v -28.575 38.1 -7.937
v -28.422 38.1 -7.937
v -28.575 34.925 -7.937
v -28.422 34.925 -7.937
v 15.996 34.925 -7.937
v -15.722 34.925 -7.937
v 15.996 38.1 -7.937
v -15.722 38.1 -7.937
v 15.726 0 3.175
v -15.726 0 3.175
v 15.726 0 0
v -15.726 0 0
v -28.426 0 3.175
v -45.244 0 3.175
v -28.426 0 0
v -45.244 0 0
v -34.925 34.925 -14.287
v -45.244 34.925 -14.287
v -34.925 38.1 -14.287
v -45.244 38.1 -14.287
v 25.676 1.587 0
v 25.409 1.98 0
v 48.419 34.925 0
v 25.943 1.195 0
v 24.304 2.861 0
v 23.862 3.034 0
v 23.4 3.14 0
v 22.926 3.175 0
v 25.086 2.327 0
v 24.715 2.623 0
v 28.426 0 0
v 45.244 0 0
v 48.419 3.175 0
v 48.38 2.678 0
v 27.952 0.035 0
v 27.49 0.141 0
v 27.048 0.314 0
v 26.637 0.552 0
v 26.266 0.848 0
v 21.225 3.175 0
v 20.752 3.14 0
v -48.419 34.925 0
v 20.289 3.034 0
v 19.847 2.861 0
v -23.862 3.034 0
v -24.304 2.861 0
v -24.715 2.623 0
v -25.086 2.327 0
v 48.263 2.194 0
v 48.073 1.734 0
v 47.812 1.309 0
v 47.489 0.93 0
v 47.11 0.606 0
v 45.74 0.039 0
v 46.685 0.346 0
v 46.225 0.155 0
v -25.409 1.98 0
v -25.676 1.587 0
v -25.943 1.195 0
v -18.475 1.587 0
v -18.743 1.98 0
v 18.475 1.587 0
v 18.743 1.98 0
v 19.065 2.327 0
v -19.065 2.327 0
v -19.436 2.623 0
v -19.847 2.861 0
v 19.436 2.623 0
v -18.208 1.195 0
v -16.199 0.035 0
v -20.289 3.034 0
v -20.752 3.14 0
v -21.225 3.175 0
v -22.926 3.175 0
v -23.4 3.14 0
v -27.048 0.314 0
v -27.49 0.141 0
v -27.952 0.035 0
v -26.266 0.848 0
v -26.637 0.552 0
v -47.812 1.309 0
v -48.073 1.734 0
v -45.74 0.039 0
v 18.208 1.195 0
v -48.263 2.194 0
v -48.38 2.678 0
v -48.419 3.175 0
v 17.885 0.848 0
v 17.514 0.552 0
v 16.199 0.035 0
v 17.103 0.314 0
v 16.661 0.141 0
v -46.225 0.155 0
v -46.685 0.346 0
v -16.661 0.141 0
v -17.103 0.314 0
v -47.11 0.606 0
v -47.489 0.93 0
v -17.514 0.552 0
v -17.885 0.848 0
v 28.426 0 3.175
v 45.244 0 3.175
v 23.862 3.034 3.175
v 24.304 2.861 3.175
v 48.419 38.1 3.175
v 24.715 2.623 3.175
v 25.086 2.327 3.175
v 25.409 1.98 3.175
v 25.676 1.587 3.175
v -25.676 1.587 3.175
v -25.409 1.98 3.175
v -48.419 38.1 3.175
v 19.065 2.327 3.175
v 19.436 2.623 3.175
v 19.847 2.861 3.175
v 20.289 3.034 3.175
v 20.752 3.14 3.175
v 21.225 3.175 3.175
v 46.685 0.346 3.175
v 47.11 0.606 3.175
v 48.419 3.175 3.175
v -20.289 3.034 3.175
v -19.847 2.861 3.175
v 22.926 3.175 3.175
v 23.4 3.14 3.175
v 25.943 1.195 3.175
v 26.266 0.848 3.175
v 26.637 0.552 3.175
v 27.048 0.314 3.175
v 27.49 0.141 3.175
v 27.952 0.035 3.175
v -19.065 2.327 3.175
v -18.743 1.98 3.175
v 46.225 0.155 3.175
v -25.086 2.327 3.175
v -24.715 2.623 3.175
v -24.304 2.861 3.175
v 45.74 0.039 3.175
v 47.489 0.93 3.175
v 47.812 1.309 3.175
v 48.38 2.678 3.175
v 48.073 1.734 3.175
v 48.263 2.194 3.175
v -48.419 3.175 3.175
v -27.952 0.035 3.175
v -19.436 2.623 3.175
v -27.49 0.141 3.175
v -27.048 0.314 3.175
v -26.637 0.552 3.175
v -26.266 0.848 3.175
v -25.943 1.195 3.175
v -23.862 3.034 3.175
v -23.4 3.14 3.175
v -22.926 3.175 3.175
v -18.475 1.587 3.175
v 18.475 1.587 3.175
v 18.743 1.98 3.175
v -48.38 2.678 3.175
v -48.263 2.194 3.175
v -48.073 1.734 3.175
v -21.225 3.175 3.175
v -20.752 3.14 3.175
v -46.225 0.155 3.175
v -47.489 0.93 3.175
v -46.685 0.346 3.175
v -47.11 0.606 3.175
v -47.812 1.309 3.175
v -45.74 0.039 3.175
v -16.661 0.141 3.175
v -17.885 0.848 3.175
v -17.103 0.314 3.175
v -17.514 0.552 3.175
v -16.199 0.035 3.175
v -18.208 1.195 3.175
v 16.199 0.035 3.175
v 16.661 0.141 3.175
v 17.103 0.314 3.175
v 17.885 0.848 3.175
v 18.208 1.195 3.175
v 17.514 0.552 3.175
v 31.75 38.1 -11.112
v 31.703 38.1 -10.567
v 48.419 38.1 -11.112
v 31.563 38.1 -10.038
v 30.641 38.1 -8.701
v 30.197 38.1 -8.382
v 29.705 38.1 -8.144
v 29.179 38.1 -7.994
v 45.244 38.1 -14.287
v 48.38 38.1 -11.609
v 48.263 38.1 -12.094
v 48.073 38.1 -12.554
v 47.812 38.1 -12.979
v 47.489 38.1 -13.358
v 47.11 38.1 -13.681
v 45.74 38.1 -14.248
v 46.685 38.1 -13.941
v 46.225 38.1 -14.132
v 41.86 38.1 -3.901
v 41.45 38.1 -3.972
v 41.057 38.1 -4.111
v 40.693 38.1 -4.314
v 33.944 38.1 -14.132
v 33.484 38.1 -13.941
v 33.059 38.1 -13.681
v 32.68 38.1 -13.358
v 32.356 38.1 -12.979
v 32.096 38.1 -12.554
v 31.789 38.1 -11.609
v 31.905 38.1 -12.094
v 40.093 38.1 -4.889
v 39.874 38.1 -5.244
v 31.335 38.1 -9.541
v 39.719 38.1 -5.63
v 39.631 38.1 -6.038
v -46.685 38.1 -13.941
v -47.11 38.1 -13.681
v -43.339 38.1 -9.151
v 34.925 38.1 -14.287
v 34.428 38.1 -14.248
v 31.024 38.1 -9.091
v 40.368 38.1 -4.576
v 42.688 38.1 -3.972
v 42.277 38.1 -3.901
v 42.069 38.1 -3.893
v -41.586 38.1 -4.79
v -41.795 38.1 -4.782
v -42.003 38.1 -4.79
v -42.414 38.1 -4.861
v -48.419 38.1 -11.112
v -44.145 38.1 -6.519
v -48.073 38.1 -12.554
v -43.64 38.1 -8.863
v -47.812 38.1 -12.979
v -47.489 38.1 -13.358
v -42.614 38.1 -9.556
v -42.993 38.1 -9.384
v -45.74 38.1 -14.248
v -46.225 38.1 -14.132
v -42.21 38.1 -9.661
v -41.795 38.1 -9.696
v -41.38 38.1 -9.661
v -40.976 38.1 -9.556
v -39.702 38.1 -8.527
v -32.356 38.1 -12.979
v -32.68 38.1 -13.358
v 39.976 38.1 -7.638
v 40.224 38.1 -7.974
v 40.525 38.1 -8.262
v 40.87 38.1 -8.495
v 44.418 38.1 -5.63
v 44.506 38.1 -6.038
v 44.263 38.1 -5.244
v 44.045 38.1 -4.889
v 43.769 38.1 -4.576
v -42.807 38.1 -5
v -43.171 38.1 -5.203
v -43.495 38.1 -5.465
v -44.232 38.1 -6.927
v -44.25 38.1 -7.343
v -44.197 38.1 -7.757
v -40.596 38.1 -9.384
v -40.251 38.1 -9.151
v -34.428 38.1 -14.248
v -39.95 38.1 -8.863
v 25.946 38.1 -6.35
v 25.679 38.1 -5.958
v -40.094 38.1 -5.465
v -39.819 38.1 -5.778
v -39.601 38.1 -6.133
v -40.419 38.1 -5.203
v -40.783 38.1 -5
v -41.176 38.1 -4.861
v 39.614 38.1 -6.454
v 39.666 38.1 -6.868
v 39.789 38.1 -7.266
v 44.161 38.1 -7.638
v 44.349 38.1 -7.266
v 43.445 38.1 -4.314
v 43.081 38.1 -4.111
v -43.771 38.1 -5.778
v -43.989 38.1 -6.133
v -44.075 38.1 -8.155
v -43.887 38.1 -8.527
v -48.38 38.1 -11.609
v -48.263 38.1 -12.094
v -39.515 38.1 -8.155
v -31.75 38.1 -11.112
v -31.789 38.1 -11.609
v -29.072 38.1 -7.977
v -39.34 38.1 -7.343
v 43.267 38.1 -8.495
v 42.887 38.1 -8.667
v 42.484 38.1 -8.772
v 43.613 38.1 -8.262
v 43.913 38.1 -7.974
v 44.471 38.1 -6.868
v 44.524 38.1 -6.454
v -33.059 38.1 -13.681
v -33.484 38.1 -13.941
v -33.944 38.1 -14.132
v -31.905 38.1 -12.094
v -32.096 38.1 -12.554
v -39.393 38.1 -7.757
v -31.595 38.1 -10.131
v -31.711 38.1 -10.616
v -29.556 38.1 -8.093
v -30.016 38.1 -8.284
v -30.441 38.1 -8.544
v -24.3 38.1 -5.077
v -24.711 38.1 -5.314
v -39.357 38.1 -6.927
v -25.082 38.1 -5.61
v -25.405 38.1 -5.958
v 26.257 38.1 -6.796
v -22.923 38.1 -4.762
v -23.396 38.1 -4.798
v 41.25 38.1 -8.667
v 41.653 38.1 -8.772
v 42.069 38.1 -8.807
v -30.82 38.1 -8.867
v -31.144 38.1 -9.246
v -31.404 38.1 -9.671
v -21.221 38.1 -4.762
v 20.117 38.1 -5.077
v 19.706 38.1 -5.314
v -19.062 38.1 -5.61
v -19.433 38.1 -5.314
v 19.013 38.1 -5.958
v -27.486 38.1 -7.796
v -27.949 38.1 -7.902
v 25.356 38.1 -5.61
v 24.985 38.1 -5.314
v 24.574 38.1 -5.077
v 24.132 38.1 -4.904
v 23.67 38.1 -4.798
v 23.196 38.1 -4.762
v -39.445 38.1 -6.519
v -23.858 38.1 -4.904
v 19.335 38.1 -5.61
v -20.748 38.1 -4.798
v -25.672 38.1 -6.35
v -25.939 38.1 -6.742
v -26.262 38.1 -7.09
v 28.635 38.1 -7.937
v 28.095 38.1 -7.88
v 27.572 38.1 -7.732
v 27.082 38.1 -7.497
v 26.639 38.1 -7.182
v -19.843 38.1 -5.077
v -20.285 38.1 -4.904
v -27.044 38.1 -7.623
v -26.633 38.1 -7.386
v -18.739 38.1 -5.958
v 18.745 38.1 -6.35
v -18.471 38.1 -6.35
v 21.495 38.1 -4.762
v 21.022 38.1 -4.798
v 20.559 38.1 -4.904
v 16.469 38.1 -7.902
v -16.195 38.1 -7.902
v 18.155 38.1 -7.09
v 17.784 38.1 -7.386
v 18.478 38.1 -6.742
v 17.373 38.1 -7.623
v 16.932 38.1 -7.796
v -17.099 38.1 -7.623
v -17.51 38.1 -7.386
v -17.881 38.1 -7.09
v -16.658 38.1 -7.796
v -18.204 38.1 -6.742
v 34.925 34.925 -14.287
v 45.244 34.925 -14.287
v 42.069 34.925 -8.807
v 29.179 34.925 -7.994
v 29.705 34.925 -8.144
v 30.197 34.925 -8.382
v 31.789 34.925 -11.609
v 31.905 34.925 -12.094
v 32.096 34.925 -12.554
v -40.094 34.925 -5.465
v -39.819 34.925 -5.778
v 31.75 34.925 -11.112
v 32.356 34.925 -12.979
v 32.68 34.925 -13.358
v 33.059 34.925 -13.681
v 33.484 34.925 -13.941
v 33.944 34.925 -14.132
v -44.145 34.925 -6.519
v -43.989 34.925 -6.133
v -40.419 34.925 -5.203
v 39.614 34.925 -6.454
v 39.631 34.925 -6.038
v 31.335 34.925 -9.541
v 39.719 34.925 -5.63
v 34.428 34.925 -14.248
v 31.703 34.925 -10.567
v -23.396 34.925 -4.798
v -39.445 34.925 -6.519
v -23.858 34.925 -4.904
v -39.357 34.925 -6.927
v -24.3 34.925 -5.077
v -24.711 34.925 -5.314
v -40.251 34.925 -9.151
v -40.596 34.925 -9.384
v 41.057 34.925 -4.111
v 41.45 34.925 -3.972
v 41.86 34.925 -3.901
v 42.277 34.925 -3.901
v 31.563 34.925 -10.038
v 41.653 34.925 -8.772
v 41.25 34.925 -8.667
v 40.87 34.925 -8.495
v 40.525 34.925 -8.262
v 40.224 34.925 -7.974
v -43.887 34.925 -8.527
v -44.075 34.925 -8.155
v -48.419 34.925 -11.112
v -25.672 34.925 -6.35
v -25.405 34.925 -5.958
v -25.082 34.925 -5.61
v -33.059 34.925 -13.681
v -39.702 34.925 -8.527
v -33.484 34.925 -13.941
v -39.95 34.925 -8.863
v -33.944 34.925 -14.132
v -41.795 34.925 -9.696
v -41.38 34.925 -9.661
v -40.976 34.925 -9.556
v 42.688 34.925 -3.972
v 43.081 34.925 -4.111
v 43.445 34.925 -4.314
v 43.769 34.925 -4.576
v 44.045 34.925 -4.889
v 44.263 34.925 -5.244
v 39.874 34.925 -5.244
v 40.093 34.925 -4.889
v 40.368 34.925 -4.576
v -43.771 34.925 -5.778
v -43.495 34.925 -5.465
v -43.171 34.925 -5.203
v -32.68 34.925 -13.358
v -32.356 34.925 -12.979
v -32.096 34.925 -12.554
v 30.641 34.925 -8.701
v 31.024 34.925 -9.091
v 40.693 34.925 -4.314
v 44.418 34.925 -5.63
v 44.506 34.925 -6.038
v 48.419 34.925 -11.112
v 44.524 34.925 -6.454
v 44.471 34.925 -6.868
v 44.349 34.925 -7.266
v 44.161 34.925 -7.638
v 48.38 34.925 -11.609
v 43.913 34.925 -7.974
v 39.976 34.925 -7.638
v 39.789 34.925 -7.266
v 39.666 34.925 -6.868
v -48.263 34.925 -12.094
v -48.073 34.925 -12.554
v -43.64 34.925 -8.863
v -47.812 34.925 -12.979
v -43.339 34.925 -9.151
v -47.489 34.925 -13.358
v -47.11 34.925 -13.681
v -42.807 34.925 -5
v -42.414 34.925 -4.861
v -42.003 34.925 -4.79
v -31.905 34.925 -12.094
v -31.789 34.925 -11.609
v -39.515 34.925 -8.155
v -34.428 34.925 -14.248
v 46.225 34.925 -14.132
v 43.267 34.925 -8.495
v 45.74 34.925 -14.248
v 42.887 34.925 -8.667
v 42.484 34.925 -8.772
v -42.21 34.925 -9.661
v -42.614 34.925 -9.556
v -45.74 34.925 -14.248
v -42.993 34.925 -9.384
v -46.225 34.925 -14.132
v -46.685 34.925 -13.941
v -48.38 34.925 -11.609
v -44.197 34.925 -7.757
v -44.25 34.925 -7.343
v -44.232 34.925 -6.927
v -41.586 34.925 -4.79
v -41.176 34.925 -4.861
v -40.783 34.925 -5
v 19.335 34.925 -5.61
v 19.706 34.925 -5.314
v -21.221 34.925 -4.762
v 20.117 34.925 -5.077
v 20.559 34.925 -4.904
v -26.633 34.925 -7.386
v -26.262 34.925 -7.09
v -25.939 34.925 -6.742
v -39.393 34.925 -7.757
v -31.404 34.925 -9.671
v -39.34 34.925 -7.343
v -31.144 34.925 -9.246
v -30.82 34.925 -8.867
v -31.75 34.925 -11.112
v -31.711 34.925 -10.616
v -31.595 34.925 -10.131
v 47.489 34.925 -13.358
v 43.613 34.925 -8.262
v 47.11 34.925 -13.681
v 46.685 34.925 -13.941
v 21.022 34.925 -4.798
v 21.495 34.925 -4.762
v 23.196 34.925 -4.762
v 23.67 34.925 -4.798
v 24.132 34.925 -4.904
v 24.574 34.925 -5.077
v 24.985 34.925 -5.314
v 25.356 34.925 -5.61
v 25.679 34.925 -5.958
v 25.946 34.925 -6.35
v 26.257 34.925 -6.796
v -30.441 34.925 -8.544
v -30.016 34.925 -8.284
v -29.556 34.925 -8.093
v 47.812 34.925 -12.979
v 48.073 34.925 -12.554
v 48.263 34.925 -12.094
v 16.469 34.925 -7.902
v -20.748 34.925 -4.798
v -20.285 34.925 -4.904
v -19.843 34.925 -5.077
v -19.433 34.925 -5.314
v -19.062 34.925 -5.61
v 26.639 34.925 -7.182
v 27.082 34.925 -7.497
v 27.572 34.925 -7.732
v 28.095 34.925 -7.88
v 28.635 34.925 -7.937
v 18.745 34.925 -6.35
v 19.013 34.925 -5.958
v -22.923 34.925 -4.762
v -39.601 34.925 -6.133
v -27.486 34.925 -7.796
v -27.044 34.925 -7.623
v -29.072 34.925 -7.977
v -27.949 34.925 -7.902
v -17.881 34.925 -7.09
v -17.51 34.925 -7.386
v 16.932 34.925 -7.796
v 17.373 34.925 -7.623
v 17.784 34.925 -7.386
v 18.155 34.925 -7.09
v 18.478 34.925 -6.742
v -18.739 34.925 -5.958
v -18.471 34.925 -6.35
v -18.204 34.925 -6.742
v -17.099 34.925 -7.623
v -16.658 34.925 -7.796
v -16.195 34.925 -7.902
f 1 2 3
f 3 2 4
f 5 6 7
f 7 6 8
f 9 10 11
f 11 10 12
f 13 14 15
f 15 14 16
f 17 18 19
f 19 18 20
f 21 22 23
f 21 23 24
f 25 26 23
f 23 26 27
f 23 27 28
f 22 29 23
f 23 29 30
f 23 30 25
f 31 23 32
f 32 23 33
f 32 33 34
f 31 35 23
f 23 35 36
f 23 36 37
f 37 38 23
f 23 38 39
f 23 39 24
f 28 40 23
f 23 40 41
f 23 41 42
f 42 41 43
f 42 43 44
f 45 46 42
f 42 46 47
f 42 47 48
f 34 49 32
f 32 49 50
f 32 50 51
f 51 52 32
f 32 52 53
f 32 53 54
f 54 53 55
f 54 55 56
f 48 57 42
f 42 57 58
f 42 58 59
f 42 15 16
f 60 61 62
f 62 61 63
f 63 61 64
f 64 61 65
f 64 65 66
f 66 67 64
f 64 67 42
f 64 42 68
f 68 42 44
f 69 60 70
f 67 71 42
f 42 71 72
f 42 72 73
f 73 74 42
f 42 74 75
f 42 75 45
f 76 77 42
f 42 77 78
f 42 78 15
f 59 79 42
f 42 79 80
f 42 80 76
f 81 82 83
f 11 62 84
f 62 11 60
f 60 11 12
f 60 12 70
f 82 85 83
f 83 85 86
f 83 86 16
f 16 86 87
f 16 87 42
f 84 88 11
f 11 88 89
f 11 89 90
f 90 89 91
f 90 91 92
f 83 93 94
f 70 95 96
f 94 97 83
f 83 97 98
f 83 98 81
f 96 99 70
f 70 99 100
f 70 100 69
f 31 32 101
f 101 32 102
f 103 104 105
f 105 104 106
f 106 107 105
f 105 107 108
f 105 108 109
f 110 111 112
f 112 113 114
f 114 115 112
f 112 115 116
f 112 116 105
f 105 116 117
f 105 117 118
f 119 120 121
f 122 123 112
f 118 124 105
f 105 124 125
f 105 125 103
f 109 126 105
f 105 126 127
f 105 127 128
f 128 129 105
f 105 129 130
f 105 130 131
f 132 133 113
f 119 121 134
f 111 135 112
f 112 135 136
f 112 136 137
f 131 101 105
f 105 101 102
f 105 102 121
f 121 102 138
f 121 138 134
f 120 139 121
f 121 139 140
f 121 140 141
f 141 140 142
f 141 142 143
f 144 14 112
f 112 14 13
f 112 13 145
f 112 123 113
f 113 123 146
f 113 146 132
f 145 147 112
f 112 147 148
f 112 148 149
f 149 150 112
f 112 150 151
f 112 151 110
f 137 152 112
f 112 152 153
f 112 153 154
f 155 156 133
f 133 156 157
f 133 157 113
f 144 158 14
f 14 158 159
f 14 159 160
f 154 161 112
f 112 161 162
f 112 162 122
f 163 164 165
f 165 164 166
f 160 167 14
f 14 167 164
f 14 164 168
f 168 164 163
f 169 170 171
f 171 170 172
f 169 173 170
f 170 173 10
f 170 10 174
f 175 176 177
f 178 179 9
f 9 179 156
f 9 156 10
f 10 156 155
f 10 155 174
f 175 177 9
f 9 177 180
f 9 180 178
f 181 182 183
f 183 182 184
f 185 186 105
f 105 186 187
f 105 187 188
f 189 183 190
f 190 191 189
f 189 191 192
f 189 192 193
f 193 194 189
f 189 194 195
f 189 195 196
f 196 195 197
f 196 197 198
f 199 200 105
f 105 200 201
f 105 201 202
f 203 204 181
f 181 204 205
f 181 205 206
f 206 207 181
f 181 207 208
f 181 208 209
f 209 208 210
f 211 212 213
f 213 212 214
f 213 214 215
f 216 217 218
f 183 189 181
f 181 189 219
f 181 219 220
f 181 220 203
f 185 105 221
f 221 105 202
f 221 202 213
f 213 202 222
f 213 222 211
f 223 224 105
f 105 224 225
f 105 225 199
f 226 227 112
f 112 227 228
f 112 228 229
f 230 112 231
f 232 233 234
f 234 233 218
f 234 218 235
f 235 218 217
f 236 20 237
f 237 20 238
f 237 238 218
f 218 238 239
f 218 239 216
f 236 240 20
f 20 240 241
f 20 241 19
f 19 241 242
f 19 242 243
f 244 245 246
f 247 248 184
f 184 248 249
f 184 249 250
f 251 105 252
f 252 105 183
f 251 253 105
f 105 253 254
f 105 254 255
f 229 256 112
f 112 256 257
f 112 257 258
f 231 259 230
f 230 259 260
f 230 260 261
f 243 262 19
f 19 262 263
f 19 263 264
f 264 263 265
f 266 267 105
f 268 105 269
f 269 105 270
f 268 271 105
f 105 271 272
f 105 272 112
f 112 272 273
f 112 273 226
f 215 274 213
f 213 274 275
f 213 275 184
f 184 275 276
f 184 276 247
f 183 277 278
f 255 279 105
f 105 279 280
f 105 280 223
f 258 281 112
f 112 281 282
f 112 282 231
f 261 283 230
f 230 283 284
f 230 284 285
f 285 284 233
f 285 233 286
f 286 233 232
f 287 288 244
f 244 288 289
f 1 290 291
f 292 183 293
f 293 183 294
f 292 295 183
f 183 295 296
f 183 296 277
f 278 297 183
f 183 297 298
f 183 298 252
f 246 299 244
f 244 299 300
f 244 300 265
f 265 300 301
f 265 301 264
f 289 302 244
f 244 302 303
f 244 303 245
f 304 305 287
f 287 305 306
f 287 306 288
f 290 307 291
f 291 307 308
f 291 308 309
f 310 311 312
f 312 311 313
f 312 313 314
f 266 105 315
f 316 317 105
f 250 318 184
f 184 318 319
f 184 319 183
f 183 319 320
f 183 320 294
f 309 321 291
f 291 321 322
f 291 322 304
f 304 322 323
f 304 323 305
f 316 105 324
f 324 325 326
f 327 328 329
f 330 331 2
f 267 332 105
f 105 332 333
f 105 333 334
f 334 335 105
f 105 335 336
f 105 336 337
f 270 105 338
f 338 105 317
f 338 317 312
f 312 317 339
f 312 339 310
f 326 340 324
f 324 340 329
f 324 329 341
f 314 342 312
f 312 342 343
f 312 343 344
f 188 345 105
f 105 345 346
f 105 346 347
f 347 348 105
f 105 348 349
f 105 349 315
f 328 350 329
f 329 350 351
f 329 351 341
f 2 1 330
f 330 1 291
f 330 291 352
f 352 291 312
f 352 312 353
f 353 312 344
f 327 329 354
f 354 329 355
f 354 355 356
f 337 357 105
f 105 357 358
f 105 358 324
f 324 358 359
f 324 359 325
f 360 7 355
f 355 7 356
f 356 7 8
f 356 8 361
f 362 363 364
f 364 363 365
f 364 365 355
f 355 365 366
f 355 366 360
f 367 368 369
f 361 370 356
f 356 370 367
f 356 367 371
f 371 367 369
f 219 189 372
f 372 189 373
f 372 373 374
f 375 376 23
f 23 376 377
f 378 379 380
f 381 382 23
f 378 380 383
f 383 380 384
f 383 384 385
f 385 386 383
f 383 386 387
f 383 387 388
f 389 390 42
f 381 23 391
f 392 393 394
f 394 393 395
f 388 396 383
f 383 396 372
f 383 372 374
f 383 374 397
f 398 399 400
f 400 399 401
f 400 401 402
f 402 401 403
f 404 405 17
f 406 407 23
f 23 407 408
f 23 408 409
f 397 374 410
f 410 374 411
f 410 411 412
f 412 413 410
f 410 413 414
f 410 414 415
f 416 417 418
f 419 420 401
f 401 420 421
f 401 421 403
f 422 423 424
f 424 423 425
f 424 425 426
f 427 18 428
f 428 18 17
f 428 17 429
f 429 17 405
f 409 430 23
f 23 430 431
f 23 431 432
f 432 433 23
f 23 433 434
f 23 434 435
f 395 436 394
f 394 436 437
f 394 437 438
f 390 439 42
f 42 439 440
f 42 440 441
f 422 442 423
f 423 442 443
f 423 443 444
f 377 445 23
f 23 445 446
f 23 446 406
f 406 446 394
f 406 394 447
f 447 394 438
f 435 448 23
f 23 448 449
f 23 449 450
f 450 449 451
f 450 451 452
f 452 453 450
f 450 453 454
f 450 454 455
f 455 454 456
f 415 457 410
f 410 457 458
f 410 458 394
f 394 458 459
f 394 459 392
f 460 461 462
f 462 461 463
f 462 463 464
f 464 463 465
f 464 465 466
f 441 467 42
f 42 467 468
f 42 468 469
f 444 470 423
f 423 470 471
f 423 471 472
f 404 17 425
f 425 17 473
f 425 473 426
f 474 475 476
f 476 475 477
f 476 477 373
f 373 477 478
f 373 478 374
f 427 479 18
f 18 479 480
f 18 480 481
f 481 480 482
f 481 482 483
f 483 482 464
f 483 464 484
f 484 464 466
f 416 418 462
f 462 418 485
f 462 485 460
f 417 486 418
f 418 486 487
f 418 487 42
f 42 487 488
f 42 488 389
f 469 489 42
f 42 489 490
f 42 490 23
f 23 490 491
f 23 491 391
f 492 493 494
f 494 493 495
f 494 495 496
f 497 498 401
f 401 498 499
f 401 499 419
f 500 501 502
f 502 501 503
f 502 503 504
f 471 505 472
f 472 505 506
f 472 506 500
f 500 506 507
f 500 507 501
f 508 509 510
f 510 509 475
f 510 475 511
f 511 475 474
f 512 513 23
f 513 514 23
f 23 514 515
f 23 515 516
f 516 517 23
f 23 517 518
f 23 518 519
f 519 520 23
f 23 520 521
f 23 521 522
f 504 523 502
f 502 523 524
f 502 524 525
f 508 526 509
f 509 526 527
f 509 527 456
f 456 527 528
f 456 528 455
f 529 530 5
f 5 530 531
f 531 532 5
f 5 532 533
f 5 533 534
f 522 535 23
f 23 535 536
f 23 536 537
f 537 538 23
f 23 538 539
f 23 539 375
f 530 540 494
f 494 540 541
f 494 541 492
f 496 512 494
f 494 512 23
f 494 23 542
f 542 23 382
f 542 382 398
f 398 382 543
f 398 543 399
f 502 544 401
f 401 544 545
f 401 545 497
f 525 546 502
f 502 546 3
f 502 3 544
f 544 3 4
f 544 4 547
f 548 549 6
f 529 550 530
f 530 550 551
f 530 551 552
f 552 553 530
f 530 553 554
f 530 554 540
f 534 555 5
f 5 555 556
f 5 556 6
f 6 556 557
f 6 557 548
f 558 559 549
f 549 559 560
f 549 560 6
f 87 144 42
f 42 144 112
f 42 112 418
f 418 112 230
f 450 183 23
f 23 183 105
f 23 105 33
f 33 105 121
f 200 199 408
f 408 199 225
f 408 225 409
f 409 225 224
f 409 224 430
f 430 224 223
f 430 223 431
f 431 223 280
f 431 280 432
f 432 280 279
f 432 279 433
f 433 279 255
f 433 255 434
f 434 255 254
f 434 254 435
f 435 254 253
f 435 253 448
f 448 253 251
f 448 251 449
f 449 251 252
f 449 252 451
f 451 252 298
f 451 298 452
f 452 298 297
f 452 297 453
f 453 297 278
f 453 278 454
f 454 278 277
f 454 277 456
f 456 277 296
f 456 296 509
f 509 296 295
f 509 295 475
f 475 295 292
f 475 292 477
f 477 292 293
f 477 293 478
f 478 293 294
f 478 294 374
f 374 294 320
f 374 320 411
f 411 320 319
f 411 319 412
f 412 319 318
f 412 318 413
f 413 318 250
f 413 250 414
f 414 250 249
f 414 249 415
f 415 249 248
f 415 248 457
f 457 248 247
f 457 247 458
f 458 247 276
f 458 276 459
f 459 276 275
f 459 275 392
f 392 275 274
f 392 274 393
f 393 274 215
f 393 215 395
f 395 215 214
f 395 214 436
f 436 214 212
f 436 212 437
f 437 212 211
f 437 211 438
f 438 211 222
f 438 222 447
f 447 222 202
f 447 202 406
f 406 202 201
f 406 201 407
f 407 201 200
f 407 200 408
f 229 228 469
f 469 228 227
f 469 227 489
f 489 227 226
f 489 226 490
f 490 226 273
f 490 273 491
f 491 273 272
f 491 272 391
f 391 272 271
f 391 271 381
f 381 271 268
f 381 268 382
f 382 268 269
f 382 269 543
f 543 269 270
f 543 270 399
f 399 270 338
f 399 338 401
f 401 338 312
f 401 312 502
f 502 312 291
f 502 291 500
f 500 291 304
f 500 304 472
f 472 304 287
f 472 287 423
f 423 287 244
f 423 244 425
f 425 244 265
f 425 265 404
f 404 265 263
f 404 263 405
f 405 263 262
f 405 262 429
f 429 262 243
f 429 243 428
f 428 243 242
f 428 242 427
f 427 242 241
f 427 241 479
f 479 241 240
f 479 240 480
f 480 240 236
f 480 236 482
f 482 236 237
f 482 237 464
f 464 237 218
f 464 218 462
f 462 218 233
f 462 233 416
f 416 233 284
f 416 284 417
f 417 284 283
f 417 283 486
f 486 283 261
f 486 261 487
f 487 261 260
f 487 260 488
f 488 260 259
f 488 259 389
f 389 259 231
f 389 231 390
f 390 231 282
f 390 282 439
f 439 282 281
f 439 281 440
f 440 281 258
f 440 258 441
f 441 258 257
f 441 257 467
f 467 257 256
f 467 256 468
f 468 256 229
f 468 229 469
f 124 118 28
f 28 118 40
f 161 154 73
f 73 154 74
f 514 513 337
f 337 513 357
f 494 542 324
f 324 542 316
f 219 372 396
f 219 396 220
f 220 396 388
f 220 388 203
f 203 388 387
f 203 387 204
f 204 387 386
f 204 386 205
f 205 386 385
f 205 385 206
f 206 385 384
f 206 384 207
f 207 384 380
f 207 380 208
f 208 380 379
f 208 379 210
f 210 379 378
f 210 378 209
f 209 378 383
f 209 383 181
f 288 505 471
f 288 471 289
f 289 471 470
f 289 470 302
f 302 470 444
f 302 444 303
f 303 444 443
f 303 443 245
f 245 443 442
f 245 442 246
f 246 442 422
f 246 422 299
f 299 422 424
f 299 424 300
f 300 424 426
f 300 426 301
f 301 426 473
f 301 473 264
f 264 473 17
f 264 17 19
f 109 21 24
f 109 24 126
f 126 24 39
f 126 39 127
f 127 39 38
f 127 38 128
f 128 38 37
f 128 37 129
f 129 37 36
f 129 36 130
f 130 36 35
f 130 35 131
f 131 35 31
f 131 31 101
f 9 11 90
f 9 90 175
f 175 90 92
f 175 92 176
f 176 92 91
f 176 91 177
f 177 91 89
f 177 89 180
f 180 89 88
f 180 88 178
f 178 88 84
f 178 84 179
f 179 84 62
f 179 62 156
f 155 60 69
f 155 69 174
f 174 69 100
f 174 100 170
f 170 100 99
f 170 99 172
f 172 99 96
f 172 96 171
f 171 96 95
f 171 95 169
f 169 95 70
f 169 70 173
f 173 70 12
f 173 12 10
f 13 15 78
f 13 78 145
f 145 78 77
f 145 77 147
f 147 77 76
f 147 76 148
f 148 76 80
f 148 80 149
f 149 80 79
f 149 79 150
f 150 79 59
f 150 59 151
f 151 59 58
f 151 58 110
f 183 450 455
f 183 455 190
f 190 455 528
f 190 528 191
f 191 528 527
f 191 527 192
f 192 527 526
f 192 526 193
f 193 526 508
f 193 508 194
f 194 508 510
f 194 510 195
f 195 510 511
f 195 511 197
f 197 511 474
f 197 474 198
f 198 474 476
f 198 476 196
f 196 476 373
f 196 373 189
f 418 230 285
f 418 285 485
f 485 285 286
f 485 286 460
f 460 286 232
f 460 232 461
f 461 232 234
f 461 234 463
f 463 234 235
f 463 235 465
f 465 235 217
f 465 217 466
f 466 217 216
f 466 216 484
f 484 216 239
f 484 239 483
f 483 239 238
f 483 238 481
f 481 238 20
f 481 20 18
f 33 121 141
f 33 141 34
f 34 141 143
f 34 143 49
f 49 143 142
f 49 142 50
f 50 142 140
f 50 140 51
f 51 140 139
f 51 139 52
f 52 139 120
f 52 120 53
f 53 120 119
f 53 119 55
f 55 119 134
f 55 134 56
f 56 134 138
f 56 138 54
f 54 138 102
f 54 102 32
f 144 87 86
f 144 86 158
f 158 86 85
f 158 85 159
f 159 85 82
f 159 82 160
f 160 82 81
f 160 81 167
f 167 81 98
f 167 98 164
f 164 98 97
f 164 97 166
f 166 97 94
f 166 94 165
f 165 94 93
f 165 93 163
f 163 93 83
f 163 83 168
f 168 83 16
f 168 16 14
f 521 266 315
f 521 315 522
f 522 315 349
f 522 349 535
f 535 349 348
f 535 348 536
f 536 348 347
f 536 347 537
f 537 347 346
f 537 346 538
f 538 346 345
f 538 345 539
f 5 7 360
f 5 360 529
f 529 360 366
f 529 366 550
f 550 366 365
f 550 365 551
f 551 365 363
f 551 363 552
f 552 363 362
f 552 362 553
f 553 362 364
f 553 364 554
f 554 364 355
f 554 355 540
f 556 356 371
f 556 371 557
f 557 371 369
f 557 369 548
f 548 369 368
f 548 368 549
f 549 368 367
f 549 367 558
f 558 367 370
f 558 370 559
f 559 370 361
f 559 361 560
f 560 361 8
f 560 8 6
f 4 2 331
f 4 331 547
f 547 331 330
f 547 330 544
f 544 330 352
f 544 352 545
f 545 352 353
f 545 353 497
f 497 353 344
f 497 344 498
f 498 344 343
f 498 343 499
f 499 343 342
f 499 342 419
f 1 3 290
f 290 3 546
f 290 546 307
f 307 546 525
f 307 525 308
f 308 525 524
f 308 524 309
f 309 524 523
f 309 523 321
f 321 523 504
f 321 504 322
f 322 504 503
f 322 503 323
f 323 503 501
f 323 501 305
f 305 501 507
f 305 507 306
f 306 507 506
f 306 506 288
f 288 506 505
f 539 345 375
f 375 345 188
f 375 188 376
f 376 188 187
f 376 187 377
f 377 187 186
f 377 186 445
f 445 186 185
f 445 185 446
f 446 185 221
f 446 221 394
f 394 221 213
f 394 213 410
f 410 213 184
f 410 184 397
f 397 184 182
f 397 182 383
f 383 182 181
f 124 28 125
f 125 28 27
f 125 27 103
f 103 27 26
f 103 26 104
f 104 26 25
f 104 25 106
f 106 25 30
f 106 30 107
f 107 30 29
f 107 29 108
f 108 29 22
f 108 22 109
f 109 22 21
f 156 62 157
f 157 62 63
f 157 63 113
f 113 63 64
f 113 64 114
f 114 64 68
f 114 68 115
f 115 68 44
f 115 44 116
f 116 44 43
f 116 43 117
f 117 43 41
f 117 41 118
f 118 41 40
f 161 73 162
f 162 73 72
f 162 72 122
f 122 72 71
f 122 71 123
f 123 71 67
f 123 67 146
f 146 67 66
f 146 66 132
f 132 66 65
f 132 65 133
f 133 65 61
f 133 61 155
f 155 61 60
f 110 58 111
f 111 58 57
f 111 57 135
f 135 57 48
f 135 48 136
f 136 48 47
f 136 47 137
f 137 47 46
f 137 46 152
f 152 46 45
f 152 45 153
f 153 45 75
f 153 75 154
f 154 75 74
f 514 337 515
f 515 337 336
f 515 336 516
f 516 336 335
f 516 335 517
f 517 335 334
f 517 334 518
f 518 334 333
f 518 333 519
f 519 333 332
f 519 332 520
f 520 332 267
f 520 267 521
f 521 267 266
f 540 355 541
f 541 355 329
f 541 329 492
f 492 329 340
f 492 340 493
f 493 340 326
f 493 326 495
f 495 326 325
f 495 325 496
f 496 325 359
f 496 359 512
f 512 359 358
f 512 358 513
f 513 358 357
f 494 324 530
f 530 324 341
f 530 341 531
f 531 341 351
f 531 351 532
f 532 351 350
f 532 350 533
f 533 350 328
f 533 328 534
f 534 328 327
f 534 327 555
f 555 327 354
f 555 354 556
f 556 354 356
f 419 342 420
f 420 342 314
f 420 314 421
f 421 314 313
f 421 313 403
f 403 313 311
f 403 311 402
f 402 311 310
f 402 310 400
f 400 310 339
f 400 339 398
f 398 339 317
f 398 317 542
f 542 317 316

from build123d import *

# Parameters (mm, degrees)
BOSS_EXTRUDE1_DEPTH          = 48.41875
F_10_0_1935_DIAMETER_HOLE1_D = 4.9149
CUT_EXTRUDE3_REACH           = 65.246
SKETCH9_W                    = 63.5
SKETCH9_H                    = 6.35
CUT_EXTRUDE1_REACH           = 66.038
SKETCH7_W                    = 6.35
SKETCH7_H                    = 3.175
CUT_EXTRUDE2_REACH           = 65.246
SKETCH8_W                    = 6.35
SKETCH8_H                    = 3.175
FILLET1_R                    = 3.175
FILLET2_R                    = 3.175


with BuildPart() as part:
    # Sketch1 → Boss-Extrude1 (new, symmetric)
    with BuildSketch(Plane(origin=(0, 0, 0), x_dir=(0, 0, -1), z_dir=(1, 0, 0))):
        Polygon((0, 0), (-3.175, 0), (-3.175, 38.1), (14.2875, 38.1), (14.2875, 34.925), (0, 34.925), align=None)
    extrude(amount=BOSS_EXTRUDE1_DEPTH, both=True)

    # #10 (0.1935) Diameter Hole1 (through all)
    with Locations(Plane(origin=(0, 34.925, 0), x_dir=(-1, 0, 0), z_dir=(0, -1, 0))):
        with Locations((41.794904569, 7.239), (-42.06875, 6.35)):
            Hole(F_10_0_1935_DIAMETER_HOLE1_D / 2)

    # Sketch9 → Cut-Extrude3 (cut, up to next)
    with BuildSketch(Plane(origin=(0, 38.1, 0), x_dir=(1, 0, 0), z_dir=(0, 1, 0)), mode=Mode.PRIVATE) as cut_extrude3_sk1:
        with Locations((0, 11.1125)):
            Rectangle(SKETCH9_W, SKETCH9_H)
    cut_extrude3_tool1 = extrude(cut_extrude3_sk1.sketch, amount=-CUT_EXTRUDE3_REACH, mode=Mode.PRIVATE) & part.part
    add(cut_extrude3_tool1.solids().sort_by_distance((0, 38.1, -11.1125))[0], mode=Mode.SUBTRACT)

    # Sketch7 → Cut-Extrude1 (cut, up to next)
    with BuildSketch(Plane.XY.offset(3.175), mode=Mode.PRIVATE) as cut_extrude1_sk1:
        with Locations((-22.075650032, 1.5875)):
            Rectangle(SKETCH7_W, SKETCH7_H)
    cut_extrude1_tool1 = extrude(cut_extrude1_sk1.sketch, amount=-CUT_EXTRUDE1_REACH, mode=Mode.PRIVATE) & part.part
    # Sketch7 → Cut-Extrude1 (cut, up to next)
    with BuildSketch(Plane.XY.offset(3.175), mode=Mode.PRIVATE) as cut_extrude1_sk2:
        with Locations((22.075650032, 1.5875)):
            Rectangle(SKETCH7_W, SKETCH7_H)
    cut_extrude1_tool2 = extrude(cut_extrude1_sk2.sketch, amount=-CUT_EXTRUDE1_REACH, mode=Mode.PRIVATE) & part.part
    add(cut_extrude1_tool1.solids().sort_by_distance((-22.07565, 1.5875, 3.175))[0], mode=Mode.SUBTRACT)
    add(cut_extrude1_tool2.solids().sort_by_distance((22.07565, 1.5875, 3.175))[0], mode=Mode.SUBTRACT)

    # Sketch8 → Cut-Extrude2 (cut, up to next)
    with BuildSketch(Plane(origin=(0, 38.1, 0), x_dir=(1, 0, 0), z_dir=(0, 1, 0)), mode=Mode.PRIVATE) as cut_extrude2_sk1:
        with Locations((-22.071804601, 6.35)):
            Rectangle(SKETCH8_W, SKETCH8_H)
    cut_extrude2_tool1 = extrude(cut_extrude2_sk1.sketch, amount=-CUT_EXTRUDE2_REACH, mode=Mode.PRIVATE) & part.part
    # Sketch8 → Cut-Extrude2 (cut, up to next)
    with BuildSketch(Plane(origin=(0, 38.1, 0), x_dir=(1, 0, 0), z_dir=(0, 1, 0)), mode=Mode.PRIVATE) as cut_extrude2_sk2:
        with Locations((22.345650032, 6.35)):
            Rectangle(SKETCH8_W, SKETCH8_H)
    cut_extrude2_tool2 = extrude(cut_extrude2_sk2.sketch, amount=-CUT_EXTRUDE2_REACH, mode=Mode.PRIVATE) & part.part
    add(cut_extrude2_tool1.solids().sort_by_distance((-22.071805, 38.1, -6.35))[0], mode=Mode.SUBTRACT)
    add(cut_extrude2_tool2.solids().sort_by_distance((22.34565, 38.1, -6.35))[0], mode=Mode.SUBTRACT)

    # Fillet1
    fillet1_edges = [part.edges().sort_by_distance(p)[0] for p in [
        (25.250650032, 0, 1.5875),
        (18.900650032, 0, 1.5875),
        (-18.900650032, 0, 1.5875),
        (-25.250650032, 0, 1.5875),
        (48.41875, 36.5125, -14.2875),
        (-48.41875, 36.5125, -14.2875),
        (48.41875, 0, 1.5875),
        (-48.41875, 0, 1.5875),
        (25.520650032, 36.5125, -7.9375),
        (19.170650032, 36.5125, -7.9375),
        (-18.896804601, 36.5125, -7.9375),
        (-25.246804601, 36.5125, -7.9375),
        (31.75, 36.5125, -14.2875),
        (-31.75, 36.5125, -14.2875),
    ]]
    fillet(fillet1_edges, radius=FILLET1_R - 0.0001)  # a hair under: the kernel refuses the full size

    # Fillet2
    fillet2_edges = [part.edges().sort_by_distance(p)[0] for p in [
        (25.250650032, 3.175, 1.5875),
        (18.900650032, 3.175, 1.5875),
        (-18.900650032, 3.175, 1.5875),
        (-25.250650032, 3.175, 1.5875),
        (25.520650032, 36.5125, -4.7625),
        (19.170650032, 36.5125, -4.7625),
        (-18.896804601, 36.5125, -4.7625),
        (-25.246804601, 36.5125, -4.7625),
        (-31.75, 36.5125, -7.9375),
        (31.75, 36.5125, -7.9375),
    ]]
    fillet(fillet2_edges, radius=FILLET2_R)


solid = part.part
